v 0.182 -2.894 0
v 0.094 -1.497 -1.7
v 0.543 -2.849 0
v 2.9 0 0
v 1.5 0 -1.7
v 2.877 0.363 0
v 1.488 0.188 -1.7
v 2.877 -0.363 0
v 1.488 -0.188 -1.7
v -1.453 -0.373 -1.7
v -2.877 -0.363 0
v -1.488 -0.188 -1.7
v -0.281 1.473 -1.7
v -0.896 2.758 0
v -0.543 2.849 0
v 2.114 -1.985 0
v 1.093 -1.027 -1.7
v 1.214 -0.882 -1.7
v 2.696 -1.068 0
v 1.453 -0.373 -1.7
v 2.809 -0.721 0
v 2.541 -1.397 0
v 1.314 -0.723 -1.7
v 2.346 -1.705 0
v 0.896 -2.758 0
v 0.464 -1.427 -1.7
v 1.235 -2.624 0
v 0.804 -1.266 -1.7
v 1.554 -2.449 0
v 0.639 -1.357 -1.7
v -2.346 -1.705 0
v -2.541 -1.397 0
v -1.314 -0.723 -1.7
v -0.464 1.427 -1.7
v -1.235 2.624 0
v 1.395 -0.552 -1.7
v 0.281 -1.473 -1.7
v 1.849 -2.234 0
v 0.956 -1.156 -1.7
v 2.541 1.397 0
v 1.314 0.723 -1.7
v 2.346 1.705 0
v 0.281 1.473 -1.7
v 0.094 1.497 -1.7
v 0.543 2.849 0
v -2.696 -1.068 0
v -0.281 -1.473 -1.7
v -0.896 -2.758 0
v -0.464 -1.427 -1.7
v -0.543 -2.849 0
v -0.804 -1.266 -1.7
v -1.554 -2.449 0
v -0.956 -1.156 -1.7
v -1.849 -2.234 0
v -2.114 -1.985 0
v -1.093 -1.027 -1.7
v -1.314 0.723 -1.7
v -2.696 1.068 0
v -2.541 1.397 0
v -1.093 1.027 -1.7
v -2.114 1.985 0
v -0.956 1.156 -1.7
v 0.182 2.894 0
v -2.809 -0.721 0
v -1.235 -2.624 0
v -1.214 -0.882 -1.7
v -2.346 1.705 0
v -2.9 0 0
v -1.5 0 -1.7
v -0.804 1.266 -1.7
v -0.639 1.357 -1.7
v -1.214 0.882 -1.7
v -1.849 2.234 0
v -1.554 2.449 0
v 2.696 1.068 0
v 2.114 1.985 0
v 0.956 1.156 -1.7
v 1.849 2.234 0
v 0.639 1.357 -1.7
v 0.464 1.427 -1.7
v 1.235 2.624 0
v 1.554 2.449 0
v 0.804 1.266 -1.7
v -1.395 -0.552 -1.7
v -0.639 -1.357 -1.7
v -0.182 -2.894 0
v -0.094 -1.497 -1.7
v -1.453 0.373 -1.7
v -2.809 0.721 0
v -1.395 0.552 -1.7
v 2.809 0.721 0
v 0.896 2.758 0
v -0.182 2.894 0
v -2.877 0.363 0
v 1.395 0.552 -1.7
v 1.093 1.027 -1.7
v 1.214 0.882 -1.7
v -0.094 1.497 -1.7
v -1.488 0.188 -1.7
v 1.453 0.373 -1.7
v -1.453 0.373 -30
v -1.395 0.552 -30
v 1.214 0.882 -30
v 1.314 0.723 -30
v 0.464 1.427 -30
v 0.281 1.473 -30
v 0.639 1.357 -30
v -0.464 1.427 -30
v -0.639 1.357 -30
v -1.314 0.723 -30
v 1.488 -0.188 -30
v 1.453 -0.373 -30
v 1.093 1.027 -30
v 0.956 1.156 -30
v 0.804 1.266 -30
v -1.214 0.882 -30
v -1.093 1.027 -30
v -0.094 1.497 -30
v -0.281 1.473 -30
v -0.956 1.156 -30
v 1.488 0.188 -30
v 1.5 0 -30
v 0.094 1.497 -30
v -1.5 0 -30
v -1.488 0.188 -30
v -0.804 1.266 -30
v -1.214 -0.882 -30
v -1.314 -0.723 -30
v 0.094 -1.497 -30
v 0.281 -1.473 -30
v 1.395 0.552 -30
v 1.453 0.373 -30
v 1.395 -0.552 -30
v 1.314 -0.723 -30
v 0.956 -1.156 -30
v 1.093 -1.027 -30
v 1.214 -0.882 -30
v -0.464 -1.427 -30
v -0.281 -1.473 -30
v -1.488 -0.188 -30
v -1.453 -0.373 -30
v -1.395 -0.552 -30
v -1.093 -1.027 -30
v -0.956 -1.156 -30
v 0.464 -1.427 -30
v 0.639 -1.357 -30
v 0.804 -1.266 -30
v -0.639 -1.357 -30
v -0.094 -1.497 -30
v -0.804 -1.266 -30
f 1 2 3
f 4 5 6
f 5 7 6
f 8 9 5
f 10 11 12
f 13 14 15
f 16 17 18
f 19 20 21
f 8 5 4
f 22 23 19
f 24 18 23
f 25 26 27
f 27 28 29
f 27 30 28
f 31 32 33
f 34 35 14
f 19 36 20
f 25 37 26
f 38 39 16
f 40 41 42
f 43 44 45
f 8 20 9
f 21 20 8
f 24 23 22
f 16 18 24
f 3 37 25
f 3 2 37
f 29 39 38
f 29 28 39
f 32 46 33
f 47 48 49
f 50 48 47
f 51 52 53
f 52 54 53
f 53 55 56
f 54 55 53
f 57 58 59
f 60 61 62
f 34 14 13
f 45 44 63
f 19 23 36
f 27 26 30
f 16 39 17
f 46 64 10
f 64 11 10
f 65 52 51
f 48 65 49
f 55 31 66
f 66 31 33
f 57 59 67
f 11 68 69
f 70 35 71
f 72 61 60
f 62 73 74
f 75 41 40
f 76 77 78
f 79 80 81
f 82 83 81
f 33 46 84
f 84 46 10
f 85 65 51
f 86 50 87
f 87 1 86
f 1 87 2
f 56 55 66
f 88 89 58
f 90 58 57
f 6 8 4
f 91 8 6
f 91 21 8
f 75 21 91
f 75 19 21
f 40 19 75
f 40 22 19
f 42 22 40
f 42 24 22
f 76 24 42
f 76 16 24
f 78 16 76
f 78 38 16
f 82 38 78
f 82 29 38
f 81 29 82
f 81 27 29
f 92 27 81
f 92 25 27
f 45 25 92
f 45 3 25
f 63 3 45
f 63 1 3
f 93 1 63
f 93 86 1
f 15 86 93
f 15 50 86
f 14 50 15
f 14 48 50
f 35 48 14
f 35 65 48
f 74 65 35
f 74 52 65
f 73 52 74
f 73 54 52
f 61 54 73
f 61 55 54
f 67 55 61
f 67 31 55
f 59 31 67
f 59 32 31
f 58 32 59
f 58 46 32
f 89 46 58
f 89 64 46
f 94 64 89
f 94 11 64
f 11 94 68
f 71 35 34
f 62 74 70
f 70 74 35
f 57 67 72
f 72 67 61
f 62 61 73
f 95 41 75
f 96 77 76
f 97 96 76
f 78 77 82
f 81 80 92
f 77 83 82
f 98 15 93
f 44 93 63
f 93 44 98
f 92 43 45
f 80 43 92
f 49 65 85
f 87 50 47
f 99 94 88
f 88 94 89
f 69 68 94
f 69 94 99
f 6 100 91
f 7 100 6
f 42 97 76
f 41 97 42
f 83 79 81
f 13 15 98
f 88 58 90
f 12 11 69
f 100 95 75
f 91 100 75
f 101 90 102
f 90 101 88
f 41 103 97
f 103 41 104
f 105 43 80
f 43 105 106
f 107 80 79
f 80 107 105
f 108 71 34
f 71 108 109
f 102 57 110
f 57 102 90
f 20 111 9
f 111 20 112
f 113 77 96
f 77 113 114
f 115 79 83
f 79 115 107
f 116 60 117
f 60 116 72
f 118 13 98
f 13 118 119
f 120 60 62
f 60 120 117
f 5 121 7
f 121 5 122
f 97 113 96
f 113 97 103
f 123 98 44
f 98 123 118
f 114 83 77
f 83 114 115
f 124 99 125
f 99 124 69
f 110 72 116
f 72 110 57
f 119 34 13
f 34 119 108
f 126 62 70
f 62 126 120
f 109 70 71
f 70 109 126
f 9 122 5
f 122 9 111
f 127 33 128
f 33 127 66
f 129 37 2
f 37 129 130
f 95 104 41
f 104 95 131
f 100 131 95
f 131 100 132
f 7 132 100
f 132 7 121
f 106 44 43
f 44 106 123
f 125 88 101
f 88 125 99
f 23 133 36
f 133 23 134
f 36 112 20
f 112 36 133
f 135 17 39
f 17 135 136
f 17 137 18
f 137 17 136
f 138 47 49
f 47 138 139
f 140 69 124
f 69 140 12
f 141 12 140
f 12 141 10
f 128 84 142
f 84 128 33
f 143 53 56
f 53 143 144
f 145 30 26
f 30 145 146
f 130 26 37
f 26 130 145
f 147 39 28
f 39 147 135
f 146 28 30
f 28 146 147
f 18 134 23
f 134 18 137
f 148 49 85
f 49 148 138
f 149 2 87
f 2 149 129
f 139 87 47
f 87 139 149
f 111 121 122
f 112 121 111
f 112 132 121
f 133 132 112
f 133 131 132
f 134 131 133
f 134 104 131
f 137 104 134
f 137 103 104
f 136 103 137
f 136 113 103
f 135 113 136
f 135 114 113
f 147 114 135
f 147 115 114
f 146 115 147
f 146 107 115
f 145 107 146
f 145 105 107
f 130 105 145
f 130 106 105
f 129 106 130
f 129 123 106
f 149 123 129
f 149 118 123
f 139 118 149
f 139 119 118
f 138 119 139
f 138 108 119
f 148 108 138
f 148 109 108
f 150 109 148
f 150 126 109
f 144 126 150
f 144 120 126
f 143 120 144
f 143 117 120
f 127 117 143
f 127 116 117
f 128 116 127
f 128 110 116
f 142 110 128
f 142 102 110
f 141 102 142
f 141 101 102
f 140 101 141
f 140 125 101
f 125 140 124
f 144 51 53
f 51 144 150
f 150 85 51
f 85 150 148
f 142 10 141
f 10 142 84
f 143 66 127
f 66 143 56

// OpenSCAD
// Generated by SolidPython 1.1.3 on 2023-03-13 21:43:02
$fn = 50;


difference() {
	union() {
		translate(v = [0, 0, -1.7000000000]) {
			rotate(a = [0, 0, 0]) {
				cylinder(h = 1.7000000000, r1 = 1.5000000000, r2 = 2.9000000000);
			}
		}
		translate(v = [0, 0, -30]) {
			rotate(a = [0, 0, 0]) {
				cylinder(h = 30, r = 1.5000000000);
			}
		}
	}
	union();
}
/***********************************************
*********      SolidPython code:      **********
************************************************
 
from solid import *
import os
import subprocess

import oomB

import opsc_library_gen

mode = "laser"
#mode = "3d_print"

defined_objects = {}

radius_dict = {}
countersunk_dict = {}


def set_mode(m):
    global mode
    mode = m
    radius_dict['M6'] = 6.5/2
    radius_dict['M3'] = 3.3/2
    if mode == "laser":
        radius_dict['M6'] = 6/2
        radius_dict['M3'] = 3/2

    countersunk_dict['M3'] = {}
    countersunk_dict['M3']['little_rad'] = radius_dict['M3']
    countersunk_dict['M3']['big_rad'] = (5.5+0.6)/2
    if mode == "laser":
        countersunk_dict['M3']['big_rad'] = (4.75+0.6)/2
        countersunk_dict['M3']['little_rad'] = (4.75+0.6)/2

    countersunk_dict['M3']['height'] = 1.7


def opsc_make_object(filename, objects, save_type="none",resolution=50, layers = 1, tilediff = 200, mode="laser", overwrite=True):
    if overwrite or not os.path.exists(filename):
        set_mode(mode)
        save_type = save_type.lower()
        os.makedirs(os.path.dirname(filename), exist_ok=True)
        final_object = opsc_get_object(objects, mode = mode)
        # Save the final object to the specified filename    
        scad_render_to_file(final_object, filename, file_header='$fn = %s;' % resolution, include_orig_code=True)
        if save_type == "all":
            saveToAll(filename)
        elif save_type == "dxf":
            saveToDxf(filename)
        if mode == "laser":
            filename_laser = filename.replace(".scad","-flat.scad")
            scad_render_to_file(getLaser(final_object, layers=layers, tilediff=tilediff), filename_laser, file_header='$fn = %s;' % resolution, include_orig_code=True)
            if save_type == "all":
                saveToAll(filename_laser)
            elif save_type == "dxf":
                saveToDxf(filename_laser)


def opsc_get_object(objects, mode = "laser"):
    # Create the solidpython objects only include the positive objects and if they don't have inclusion or their inclusion is either all or mode
    # Initialize an empty list to store the results
    positive_objects = []

    # Iterate over the "objects" list
    for obj in objects:
        # Check if the current object has a "type" key with a value of "positive"
        if obj['type'] == 'positive':
            # Check if the current object has an "inclusion" key and its value matches "mode",
            # or if the current object does not have an "inclusion" key at all
            if not 'inclusion' in obj or obj['inclusion'] == "all" or obj['inclusion'] == mode:
                # Call the "get_opsc_item" function with the current object as an argument
                opsc_item = get_opsc_item(obj)
                # Add the result to the "positive_objects" list
                positive_objects.append(opsc_item)
# Initialize an empty list to store the results
    negative_objects = []

    # Iterate over the "objects" list
    for obj in objects:
        # Check if the current object has a "type" key with a value of "negative"
        if obj['type'] == 'negative':
            # Check if the current object has an "inclusion" key and its value matches "mode",
            # or if the current object does not have an "inclusion" key at all
            if not 'inclusion' in obj or obj['inclusion'] == "all" or obj['inclusion'] == mode:
                # Call the "get_opsc_item" function with the current object as an argument
                opsc_item = get_opsc_item(obj)
                # Add the result to the "negative_objects" list
                negative_objects.append(opsc_item)
    
    #positive_objects = [get_opsc_item(obj) for obj in objects if obj['type'] == 'positive']
    #negative_objects = [get_opsc_item(obj) for obj in objects if obj['type'] == 'negative']
    # Union the positive objects
    positive_object = union()(*positive_objects)
    # Union the negative objects
    negative_object = union()(*negative_objects)
    # Create the final object by subtracting the negative objects from the positive objects
    return difference()(positive_object, negative_object)

def get_opsc_item(params):
    # A dictionary to map radius string values to numerical values
    #radius_dict = {'small': 5, 'medium': 10, 'large': 15}
    # An array of function names for basic shapes
    basic_shapes = ['cube', 'sphere', 'cylinder']
    
    # An array of function names for other shapes
    other_shapes = ['hole', 'slot', 'rounded_rectangle', 'countersunk', 'polyg']
    


    # Convert radius to r if present, and remove radius from the params dictionary
    if 'radius' in params:
        if isinstance(params['radius'], str):
            # Use the radius_dict to map the radius string value to a numerical value
            params['r'] = radius_dict[params['radius']]
        else:
            params['r'] = params['radius']
        del params['radius']
    

    # Check if the object type is a basic shape
    if params['shape'] in basic_shapes:
        # Remove shape and unexpected dictionary values
        allowed_keys = {'size', 'r', 'r1', 'r2', 'd', 'h', 'rw', 'rh', 'dw', 'dh'}
        shape_params = {k: v for k, v in params.items() if k in allowed_keys}

        #params['m'] = "#"
        ###split for adding modifier
        try:
            m = params['m']
            func = globals()[params['shape']]
            return_value = get_opsc_transform(params,func(**shape_params))
            return_value = (return_value).set_modifier(m)
            return return_value
        except KeyError as e:
            return get_opsc_transform(params,globals()[params['shape']](**shape_params))
        
    elif params['shape'] == 'polygon':
        # Remove shape and unexpected dictionary values
        h  = params['height']
        allowed_keys = {'points'}
        shape_params = {k: v for k, v in params.items() if k in allowed_keys}

        # Call the corresponding function for the shape parameter, using ** notation to pass the shape_params dictionary as keyword arguments
        params["rot"] = [0,0,0]        
        try:
            m = params['m']
            func = globals()[params['shape']]
            return_value = get_opsc_transform(params,linear_extrude(h)(globals()[params['shape']](**shape_params)))
            return_value = (return_value).set_modifier(m)
            return return_value
        except KeyError as e:
            return_value = get_opsc_transform(params,linear_extrude(h)(globals()[params['shape']](**shape_params)))
            return_value = (return_value)
            return return_value


    # If the object type is not a basic shape, check if it's a defined object or one of the other shapes
    elif params['shape'] in other_shapes:
        # Call the corresponding function for the shape parameter, passing the params dictionary as an argument
        p2 = copy.deepcopy(params)
        p2["pos"] = [0,0,0]
        return get_opsc_transform(params,globals()[params['shape']](p2))
    
    # If the object is not a basic shape or a defined object, try to import it from a .scad file
    else:
        obj = defined_objects[params['shape']]
        return get_opsc_transform(params,obj)

def get_opsc_transform(params, solid_obj):
    # Rotate the object based on the 'rot' field in the params dictionary, or the 'rotX', 'rotY', and 'rotZ' fields if 'rot' is not present
    rot = params.get('rot', [])
    if rot:
        rotX, rotY, rotZ = rot
    else:
        rotX = params.get('rotX', 0)
        rotY = params.get('rotY', 0)
        rotZ = params.get('rotZ', 0)
    solid_obj = rotate([rotX, rotY, rotZ])(solid_obj)

    # Translate the object based on the 'pos' field in the params dictionary, or the 'x', 'y', and 'z' fields if 'pos' is not present
    pos = params.get('pos', [])
    if pos:
        x, y, z = pos
    else:
        x = params.get('x', 0)
        y = params.get('y', 0)
        z = params.get('z', 0)
    solid_obj = translate([x, y, z])(solid_obj)
    return solid_obj


import random

def opsc_easy_array(type, shape, repeats, pos_start, shift_arr, **kwargs):
    for i in range(0,3):
        repeats.append(1)
        pos_start.append(0)
        shift_arr.append(0)
    return_objects = []

    for x in range(0,repeats[0]):
        for y in range(0,repeats[1]):
            for z in range(0,repeats[2]):
                return_objects.append(opsc_easy(type, shape, pos=[pos_start[0]+x*shift_arr[0],pos_start[1]+y*shift_arr[1],pos_start[2]+z*shift_arr[2]], **kwargs))
    return return_objects                



def opsc_easy(type, shape, **kwargs):
    obj = {
        'type': type,
        'shape': shape
    }
    for param in ['size', 'r', 'r1', 'r2', 'd', 'h', 'rw', 'rh', 'dw', 'dh', 'pos', 'x', 'y', 'z', 'rot', 'rotX', 'rotY', 'rotZ', "w", "inclusion", 'sides', 'height', "m"]:
        if param in kwargs:
            obj[param] = kwargs[param]
    return obj

def hole(params):
    p2 = copy.deepcopy(params)  
    # Check if the radius is a string and replace it with the corresponding value from the dictionary
    if isinstance(p2['r'], str):
        p2['r'] = radius_dict[p2['r']]
    
    # Set the height to 100 if not specified
    if 'h' not in p2:
        p2['h'] = 100
        p2["pos"] = [0,0,-50]
    p2["center"] = True
    # Create the cylinder object
    p2["shape"] = "cylinder"
    p2["type"] = "positive"

    return get_opsc_item(p2)

import copy

def countersunk(params):
    p2 = copy.deepcopy(params)
    counter_rad = p2['r']
    p2['r'] = radius_dict[p2['r']]
    hp = copy.deepcopy(p2)
    hp["type"] = "positive"
    hp["shape"] = "hole"
    del hp["rot"]
    hol = get_opsc_item(hp)
    
    cp = copy.deepcopy(p2)
    cp["h"] = countersunk_dict[counter_rad]["height"]
    cp["r2"] = countersunk_dict[counter_rad]["little_rad"]
    cp["r1"] = countersunk_dict[counter_rad]["big_rad"]
    del cp["r"]
    del cp["rot"]
    cp["type"] = "positive"
    cp["shape"] = "cylinder"
    cp["pos"] = [0,0,0]

    top = get_opsc_item(cp)
    return union()(hol,top)



def slot(params):  
    p2 = copy.deepcopy(params) 
    if isinstance(p2['r'], str):
        p2['r'] = radius_dict[p2['r']]
    p2["type"] = "positive"
    p2["shape"] = "hole"
    del p2["rot"]
    p2["pos"] = [0,0,0]
    left = copy.deepcopy(p2)
    right = copy.deepcopy(p2)
    left["pos"][0] = p2["w"] / 2 - p2["r"] 
    
    right["pos"][0] = -p2["w"] / 2 + p2["r"] 
    pass
    leftObj = get_opsc_item(left)
    rightObj = get_opsc_item(right)
    return hull()(leftObj, rightObj)

def rounded_rectangle(params):   
    p2 = copy.deepcopy(params) 
    p2["h"] = p2["size"][2]
    p2["pos"] = p2.get("pos", [0, 0, 0]) 
    p2["type"] = "positive"
    p2["shape"] = "hole"
    p2["pos"] = [0,0,0]
    
    if 'rot' in p2:
        del p2["rot"]   
    if 'r' not in p2:
        p2["r"] = 5 
    tl = copy.deepcopy(p2)
    tr = copy.deepcopy(p2)
    bl = copy.deepcopy(p2)
    br = copy.deepcopy(p2)
    tl["pos"][0] = -(p2["size"][0] - p2["r"]*2)/2
    tl["pos"][1] = (p2["size"][1] - p2["r"]*2)/2
    tr["pos"][0] = (p2["size"][0] - p2["r"]*2)/2
    tr["pos"][1] = (p2["size"][1] - p2["r"]*2)/2
    bl["pos"][0] = -(p2["size"][0] - p2["r"]*2)/2
    bl["pos"][1] = -(p2["size"][1] - p2["r"]*2)/2
    br["pos"][0] = (p2["size"][0] - p2["r"]*2)/2
    br["pos"][1] = -(p2["size"][1] - p2["r"]*2)/2
    del tl["size"]
    del tr["size"]
    del bl["size"]
    del br["size"]
    tlo = get_opsc_item(tl)
    tro = get_opsc_item(tr)
    blo = get_opsc_item(bl)
    bro = get_opsc_item(br)    
    return hull()(tlo, tro, blo, bro)



def polyg(params):
    p2 = copy.deepcopy(params) 
    p2["type"] = "positive"
    p2["shape"] = "polygon"
    p2["pos"] = [0,0,0]
    sides = p2["sides"]
    radius = p2["r"]    
    angles = [i * 360 / sides for i in range(sides)]
    points = regular_polygon(sides, radius)
    
    p2["points"] = points
    return get_opsc_item(p2)

import math

def regular_polygon(num_sides, radius):
    # Calculate the angle between each side
    angle = 2 * math.pi / num_sides

    # Calculate the points of the polygon
    points = []
    for i in range(num_sides):
        x = radius * math.cos(i * angle)
        y = radius * math.sin(i * angle)
        points.append((x, y))
    return points

def import_scad_object(filename):
    # Import the .scad file and convert it to a solidpython object
    #filename = "parts"
    obj = import_scad(filename)
    return obj.main()



import os
import solid as solidpython

# A dictionary to store the defined objects


def load_scad_objects():
    opsc_library_gen.gen_library(defined_objects)

import random

def test(num_objects):
    objects = []
    for i in range(num_objects):
        # Choose a random shape
        #shape = random.choice(['cube', 'sphere', 'cylinder', 'hole', 'slot', "rounded_rectangle"])
        shape = random.choice(["rounded_rectangle"])

        # Choose a random type
        type = random.choice(['positive', 'negative'])
        
        # Create an empty object dictionary
        obj = {'shape': shape, 'type': type}
        
        # Set shape-specific parameters
        if obj['shape'] in ['cube']:
            obj['size'] =  [random.uniform(5, 15), random.uniform(5, 15), random.uniform(5, 15)]
        if obj['shape'] in ['rounded_rectangle']:
            obj['size'] =  [random.uniform(5, 15), random.uniform(5, 15), random.uniform(5, 15)]
            obj['r'] = random.uniform(0.5, 5)
        elif obj['shape'] == 'sphere':
            obj['r'] = random.uniform(5, 15)
        elif obj['shape'] in ['cylinder', 'hole']:
            obj['r'] = random.uniform(0.5, 5)
            obj['h'] = random.uniform(5, 15)
        elif obj['shape'] == 'slot':
            obj['r'] = random.uniform(0.5, 5)
            obj['h'] = random.uniform(5, 15)
            obj['w'] = random.uniform(5, 15)
        
        # Set a random position and rotation
        obj['pos'] = [random.uniform(-20, 20), random.uniform(-20, 20), random.uniform(-20, 20)]
        obj['rot'] = [random.uniform(-180, 180), random.uniform(-180, 180), random.uniform(-180, 180)]
        
        # Add the object to the list
        objects.append(obj)
    return objects

####### old file saving
def saveToAll(fileIn):
    saveToStl(fileIn)
    saveToDxf(fileIn)
    saveToPng(fileIn)
    saveToSvg(fileIn)

def saveToDxf(fileIn, fileOut="", copy_to_laser=True):
    if fileOut == "":
        fileOut = fileIn.replace(".scad",".dxf")
    saveToFile(fileIn, fileOut)


    
def saveToPng(fileIn, fileOut="",extra="--render"):
    if fileOut == "":
        fileOut = fileIn.replace(".scad",".png")
    saveToFile(fileIn, fileOut)

def saveToStl(fileIn, fileOut=""):
    if fileOut == "":
        fileOut = fileIn.replace(".scad",".stl")
    saveToFile(fileIn, fileOut)
    
def saveToSvg(fileIn, fileOut=""):
    if fileOut == "":
        fileOut = fileIn.replace(".scad",".svg")
    saveToFile(fileIn, fileOut)

def saveToFile(fileIn, fileOut,extra=""):
    #extra = extra + " --colorscheme Tomorrow"

    launchStr = 'openscad -o "' + fileOut + '"' + extra + ' "' + fileIn + '"'
    if ".png" in fileOut:
        launchStr = launchStr + " --render"
    print("            saveToFile launch string: " + launchStr)
    subprocess.run(launchStr)
    x=0

def getLaser(final_object,start=1.5,layers=1,thickness=3,tilediff=200):
        rv= []

        for x in range(layers):
            rv.append(translate([0,x*tilediff,0])(
                    projection()(
                        intersection()(translate([-500,-500,start+x*thickness])(cube(size=[1000,1000,0.1])),
                            final_object
                        )
                    )
            )
            )
            
        return union()(rv)

set_mode("laser")
load_scad_objects() 
 
************************************************/
